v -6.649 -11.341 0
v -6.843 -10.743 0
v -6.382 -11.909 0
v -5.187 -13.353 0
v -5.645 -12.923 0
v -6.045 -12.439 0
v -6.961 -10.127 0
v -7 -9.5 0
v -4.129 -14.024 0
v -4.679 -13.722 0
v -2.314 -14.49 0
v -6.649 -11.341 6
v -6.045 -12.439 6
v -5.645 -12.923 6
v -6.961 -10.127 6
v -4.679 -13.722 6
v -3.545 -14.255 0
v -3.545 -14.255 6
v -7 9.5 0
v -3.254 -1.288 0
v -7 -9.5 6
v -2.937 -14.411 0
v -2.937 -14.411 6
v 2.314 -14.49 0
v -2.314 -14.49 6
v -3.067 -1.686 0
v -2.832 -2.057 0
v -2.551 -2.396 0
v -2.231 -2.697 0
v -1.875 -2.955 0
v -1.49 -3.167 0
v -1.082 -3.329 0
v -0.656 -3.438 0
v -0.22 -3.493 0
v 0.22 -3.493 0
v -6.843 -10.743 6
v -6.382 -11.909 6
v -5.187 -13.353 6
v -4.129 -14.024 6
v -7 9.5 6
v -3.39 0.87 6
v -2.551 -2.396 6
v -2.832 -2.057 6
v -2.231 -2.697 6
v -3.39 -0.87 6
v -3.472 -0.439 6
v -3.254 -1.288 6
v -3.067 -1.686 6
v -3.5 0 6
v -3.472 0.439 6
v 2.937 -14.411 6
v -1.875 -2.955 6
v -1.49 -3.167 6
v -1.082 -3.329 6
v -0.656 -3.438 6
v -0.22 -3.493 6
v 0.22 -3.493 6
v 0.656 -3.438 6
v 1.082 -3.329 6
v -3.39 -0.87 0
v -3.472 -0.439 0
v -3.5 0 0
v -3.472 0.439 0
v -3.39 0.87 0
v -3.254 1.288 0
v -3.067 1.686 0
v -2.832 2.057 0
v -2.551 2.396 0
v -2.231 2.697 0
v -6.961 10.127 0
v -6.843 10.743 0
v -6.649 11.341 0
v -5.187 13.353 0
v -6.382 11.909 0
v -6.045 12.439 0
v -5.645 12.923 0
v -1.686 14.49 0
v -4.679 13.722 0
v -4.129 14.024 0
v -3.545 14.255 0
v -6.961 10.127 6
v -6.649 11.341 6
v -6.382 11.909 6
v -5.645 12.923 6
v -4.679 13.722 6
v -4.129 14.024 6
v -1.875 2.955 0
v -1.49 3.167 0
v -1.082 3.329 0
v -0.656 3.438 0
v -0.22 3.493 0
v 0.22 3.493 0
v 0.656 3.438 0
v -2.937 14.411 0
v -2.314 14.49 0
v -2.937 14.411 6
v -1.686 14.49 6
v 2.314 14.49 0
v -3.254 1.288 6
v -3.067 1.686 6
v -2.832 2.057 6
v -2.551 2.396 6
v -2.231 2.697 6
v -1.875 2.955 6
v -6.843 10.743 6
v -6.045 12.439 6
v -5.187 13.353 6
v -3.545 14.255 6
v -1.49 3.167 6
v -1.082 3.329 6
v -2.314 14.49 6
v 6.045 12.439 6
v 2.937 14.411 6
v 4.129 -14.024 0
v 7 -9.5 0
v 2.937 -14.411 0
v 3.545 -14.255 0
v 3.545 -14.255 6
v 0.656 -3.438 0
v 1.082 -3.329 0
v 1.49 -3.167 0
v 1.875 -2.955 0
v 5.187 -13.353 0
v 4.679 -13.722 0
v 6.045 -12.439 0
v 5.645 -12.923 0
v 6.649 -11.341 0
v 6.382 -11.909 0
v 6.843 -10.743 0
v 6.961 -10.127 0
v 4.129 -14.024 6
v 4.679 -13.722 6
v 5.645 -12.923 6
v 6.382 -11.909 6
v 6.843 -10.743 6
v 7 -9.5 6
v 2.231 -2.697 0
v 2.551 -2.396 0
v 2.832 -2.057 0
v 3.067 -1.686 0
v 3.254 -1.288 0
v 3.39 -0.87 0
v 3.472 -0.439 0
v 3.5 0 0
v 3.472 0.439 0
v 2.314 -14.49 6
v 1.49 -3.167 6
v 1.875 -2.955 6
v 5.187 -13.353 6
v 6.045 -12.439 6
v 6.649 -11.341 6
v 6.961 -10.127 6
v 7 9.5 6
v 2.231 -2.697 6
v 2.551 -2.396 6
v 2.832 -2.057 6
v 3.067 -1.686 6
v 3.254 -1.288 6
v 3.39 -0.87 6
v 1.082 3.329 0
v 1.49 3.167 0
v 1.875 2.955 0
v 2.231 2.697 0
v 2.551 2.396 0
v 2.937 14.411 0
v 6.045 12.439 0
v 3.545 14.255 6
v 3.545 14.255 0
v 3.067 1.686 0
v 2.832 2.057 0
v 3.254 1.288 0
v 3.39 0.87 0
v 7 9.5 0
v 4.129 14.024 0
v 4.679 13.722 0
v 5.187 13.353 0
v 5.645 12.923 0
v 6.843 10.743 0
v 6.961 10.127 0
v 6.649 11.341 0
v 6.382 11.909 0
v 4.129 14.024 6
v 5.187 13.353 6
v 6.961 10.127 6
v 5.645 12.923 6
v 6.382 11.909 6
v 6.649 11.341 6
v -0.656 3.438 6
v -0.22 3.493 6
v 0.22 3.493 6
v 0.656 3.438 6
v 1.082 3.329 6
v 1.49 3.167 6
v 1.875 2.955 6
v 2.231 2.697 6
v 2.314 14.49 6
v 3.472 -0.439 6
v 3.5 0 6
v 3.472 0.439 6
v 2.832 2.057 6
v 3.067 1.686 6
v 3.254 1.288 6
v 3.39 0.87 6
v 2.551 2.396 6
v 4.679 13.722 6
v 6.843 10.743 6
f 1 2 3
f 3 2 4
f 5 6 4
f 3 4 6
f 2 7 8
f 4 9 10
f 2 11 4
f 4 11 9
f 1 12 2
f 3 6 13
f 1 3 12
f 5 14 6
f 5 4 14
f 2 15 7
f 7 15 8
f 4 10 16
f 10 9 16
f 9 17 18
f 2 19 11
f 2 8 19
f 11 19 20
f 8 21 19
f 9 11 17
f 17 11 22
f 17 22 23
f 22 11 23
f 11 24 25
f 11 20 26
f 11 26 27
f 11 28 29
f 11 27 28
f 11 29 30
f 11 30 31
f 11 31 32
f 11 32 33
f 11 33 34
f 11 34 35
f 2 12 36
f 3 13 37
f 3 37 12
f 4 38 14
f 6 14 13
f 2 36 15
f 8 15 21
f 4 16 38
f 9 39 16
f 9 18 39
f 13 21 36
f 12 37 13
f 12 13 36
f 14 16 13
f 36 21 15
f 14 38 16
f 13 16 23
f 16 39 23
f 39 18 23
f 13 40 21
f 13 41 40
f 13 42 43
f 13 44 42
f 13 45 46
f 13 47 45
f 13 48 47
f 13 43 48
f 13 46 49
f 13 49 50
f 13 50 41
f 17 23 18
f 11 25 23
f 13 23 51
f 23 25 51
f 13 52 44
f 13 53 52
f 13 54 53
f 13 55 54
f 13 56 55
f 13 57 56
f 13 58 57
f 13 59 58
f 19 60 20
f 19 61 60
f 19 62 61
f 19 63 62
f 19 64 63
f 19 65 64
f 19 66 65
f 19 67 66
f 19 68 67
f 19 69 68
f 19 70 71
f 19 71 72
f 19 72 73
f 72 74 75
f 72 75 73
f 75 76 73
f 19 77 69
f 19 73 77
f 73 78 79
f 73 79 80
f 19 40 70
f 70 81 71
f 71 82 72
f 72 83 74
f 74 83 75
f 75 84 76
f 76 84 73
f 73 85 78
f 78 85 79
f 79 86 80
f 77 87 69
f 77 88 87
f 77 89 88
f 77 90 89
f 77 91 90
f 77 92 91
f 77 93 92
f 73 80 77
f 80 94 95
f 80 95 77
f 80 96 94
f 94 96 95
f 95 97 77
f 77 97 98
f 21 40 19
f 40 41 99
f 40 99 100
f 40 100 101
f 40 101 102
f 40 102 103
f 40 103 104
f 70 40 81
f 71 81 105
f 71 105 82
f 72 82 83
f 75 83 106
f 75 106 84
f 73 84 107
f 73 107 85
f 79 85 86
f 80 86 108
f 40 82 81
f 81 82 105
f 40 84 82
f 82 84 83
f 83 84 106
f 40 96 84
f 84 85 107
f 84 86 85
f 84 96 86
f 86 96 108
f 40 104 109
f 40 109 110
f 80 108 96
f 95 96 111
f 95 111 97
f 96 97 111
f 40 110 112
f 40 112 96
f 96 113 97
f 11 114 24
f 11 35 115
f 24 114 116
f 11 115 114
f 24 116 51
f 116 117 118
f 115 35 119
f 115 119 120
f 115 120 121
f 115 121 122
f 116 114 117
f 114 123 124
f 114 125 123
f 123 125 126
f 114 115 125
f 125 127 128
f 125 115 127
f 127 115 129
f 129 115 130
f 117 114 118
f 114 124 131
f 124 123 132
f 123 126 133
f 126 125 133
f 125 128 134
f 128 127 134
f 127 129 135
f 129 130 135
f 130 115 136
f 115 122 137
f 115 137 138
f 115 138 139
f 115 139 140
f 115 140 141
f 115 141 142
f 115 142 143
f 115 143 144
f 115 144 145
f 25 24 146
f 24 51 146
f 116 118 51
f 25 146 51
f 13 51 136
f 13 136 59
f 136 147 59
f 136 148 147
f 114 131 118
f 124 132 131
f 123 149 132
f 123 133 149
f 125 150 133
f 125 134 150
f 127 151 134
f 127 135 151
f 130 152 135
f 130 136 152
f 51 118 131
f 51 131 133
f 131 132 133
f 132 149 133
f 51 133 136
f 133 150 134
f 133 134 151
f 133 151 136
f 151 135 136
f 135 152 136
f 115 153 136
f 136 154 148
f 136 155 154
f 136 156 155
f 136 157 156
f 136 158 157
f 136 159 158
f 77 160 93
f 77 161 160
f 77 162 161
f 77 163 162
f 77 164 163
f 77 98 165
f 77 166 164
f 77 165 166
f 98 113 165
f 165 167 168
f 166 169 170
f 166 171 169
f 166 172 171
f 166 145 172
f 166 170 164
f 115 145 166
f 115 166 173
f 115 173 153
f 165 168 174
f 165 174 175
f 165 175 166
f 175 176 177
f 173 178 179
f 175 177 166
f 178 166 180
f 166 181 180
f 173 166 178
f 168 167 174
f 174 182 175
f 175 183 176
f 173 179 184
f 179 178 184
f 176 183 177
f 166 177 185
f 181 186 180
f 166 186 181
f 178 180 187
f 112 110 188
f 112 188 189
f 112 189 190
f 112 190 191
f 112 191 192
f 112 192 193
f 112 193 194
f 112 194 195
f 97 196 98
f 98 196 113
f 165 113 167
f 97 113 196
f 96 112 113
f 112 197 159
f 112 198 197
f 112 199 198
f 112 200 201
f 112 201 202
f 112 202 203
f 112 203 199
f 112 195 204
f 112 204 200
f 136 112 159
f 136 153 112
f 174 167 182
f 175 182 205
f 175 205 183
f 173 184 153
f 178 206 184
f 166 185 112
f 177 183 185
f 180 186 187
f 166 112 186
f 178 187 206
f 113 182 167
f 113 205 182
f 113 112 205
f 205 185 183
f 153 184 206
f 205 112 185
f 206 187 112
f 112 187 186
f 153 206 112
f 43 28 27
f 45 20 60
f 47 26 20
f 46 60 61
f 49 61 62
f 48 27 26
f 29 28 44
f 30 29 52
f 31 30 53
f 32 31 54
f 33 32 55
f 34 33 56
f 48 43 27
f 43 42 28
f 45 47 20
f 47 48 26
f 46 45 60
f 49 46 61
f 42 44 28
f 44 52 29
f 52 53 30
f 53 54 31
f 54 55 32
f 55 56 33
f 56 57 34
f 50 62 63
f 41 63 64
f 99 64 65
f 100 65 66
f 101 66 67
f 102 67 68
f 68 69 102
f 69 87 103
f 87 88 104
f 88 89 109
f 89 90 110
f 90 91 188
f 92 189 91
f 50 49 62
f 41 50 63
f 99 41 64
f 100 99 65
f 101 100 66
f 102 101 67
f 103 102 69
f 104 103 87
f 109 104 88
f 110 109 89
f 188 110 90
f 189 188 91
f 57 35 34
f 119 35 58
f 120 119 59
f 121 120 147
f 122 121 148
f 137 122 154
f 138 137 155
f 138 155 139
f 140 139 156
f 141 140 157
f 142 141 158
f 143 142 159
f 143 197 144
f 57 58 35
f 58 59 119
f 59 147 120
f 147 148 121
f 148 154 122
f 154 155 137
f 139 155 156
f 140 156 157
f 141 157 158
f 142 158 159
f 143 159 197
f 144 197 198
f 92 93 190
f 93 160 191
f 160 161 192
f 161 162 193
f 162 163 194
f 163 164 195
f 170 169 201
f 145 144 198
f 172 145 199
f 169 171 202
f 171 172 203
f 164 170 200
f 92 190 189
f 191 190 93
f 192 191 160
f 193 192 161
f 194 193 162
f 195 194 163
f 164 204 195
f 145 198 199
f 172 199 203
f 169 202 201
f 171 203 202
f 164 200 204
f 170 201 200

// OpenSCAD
$fn = 50;

difference() {
	union() {
		hull() {
			translate(v = [-2.0, 9.5, 0]) {
				cylinder(h = 6, r = 5);
			}
			translate(v = [2.0, 9.5, 0]) {
				cylinder(h = 6, r = 5);
			}
			translate(v = [-2.0, -9.5, 0]) {
				cylinder(h = 6, r = 5);
			}
			translate(v = [2.0, -9.5, 0]) {
				cylinder(h = 6, r = 5);
			}
		}
	}
	union() {
		cylinder(h = 6, r = 3.5);
	}
}
